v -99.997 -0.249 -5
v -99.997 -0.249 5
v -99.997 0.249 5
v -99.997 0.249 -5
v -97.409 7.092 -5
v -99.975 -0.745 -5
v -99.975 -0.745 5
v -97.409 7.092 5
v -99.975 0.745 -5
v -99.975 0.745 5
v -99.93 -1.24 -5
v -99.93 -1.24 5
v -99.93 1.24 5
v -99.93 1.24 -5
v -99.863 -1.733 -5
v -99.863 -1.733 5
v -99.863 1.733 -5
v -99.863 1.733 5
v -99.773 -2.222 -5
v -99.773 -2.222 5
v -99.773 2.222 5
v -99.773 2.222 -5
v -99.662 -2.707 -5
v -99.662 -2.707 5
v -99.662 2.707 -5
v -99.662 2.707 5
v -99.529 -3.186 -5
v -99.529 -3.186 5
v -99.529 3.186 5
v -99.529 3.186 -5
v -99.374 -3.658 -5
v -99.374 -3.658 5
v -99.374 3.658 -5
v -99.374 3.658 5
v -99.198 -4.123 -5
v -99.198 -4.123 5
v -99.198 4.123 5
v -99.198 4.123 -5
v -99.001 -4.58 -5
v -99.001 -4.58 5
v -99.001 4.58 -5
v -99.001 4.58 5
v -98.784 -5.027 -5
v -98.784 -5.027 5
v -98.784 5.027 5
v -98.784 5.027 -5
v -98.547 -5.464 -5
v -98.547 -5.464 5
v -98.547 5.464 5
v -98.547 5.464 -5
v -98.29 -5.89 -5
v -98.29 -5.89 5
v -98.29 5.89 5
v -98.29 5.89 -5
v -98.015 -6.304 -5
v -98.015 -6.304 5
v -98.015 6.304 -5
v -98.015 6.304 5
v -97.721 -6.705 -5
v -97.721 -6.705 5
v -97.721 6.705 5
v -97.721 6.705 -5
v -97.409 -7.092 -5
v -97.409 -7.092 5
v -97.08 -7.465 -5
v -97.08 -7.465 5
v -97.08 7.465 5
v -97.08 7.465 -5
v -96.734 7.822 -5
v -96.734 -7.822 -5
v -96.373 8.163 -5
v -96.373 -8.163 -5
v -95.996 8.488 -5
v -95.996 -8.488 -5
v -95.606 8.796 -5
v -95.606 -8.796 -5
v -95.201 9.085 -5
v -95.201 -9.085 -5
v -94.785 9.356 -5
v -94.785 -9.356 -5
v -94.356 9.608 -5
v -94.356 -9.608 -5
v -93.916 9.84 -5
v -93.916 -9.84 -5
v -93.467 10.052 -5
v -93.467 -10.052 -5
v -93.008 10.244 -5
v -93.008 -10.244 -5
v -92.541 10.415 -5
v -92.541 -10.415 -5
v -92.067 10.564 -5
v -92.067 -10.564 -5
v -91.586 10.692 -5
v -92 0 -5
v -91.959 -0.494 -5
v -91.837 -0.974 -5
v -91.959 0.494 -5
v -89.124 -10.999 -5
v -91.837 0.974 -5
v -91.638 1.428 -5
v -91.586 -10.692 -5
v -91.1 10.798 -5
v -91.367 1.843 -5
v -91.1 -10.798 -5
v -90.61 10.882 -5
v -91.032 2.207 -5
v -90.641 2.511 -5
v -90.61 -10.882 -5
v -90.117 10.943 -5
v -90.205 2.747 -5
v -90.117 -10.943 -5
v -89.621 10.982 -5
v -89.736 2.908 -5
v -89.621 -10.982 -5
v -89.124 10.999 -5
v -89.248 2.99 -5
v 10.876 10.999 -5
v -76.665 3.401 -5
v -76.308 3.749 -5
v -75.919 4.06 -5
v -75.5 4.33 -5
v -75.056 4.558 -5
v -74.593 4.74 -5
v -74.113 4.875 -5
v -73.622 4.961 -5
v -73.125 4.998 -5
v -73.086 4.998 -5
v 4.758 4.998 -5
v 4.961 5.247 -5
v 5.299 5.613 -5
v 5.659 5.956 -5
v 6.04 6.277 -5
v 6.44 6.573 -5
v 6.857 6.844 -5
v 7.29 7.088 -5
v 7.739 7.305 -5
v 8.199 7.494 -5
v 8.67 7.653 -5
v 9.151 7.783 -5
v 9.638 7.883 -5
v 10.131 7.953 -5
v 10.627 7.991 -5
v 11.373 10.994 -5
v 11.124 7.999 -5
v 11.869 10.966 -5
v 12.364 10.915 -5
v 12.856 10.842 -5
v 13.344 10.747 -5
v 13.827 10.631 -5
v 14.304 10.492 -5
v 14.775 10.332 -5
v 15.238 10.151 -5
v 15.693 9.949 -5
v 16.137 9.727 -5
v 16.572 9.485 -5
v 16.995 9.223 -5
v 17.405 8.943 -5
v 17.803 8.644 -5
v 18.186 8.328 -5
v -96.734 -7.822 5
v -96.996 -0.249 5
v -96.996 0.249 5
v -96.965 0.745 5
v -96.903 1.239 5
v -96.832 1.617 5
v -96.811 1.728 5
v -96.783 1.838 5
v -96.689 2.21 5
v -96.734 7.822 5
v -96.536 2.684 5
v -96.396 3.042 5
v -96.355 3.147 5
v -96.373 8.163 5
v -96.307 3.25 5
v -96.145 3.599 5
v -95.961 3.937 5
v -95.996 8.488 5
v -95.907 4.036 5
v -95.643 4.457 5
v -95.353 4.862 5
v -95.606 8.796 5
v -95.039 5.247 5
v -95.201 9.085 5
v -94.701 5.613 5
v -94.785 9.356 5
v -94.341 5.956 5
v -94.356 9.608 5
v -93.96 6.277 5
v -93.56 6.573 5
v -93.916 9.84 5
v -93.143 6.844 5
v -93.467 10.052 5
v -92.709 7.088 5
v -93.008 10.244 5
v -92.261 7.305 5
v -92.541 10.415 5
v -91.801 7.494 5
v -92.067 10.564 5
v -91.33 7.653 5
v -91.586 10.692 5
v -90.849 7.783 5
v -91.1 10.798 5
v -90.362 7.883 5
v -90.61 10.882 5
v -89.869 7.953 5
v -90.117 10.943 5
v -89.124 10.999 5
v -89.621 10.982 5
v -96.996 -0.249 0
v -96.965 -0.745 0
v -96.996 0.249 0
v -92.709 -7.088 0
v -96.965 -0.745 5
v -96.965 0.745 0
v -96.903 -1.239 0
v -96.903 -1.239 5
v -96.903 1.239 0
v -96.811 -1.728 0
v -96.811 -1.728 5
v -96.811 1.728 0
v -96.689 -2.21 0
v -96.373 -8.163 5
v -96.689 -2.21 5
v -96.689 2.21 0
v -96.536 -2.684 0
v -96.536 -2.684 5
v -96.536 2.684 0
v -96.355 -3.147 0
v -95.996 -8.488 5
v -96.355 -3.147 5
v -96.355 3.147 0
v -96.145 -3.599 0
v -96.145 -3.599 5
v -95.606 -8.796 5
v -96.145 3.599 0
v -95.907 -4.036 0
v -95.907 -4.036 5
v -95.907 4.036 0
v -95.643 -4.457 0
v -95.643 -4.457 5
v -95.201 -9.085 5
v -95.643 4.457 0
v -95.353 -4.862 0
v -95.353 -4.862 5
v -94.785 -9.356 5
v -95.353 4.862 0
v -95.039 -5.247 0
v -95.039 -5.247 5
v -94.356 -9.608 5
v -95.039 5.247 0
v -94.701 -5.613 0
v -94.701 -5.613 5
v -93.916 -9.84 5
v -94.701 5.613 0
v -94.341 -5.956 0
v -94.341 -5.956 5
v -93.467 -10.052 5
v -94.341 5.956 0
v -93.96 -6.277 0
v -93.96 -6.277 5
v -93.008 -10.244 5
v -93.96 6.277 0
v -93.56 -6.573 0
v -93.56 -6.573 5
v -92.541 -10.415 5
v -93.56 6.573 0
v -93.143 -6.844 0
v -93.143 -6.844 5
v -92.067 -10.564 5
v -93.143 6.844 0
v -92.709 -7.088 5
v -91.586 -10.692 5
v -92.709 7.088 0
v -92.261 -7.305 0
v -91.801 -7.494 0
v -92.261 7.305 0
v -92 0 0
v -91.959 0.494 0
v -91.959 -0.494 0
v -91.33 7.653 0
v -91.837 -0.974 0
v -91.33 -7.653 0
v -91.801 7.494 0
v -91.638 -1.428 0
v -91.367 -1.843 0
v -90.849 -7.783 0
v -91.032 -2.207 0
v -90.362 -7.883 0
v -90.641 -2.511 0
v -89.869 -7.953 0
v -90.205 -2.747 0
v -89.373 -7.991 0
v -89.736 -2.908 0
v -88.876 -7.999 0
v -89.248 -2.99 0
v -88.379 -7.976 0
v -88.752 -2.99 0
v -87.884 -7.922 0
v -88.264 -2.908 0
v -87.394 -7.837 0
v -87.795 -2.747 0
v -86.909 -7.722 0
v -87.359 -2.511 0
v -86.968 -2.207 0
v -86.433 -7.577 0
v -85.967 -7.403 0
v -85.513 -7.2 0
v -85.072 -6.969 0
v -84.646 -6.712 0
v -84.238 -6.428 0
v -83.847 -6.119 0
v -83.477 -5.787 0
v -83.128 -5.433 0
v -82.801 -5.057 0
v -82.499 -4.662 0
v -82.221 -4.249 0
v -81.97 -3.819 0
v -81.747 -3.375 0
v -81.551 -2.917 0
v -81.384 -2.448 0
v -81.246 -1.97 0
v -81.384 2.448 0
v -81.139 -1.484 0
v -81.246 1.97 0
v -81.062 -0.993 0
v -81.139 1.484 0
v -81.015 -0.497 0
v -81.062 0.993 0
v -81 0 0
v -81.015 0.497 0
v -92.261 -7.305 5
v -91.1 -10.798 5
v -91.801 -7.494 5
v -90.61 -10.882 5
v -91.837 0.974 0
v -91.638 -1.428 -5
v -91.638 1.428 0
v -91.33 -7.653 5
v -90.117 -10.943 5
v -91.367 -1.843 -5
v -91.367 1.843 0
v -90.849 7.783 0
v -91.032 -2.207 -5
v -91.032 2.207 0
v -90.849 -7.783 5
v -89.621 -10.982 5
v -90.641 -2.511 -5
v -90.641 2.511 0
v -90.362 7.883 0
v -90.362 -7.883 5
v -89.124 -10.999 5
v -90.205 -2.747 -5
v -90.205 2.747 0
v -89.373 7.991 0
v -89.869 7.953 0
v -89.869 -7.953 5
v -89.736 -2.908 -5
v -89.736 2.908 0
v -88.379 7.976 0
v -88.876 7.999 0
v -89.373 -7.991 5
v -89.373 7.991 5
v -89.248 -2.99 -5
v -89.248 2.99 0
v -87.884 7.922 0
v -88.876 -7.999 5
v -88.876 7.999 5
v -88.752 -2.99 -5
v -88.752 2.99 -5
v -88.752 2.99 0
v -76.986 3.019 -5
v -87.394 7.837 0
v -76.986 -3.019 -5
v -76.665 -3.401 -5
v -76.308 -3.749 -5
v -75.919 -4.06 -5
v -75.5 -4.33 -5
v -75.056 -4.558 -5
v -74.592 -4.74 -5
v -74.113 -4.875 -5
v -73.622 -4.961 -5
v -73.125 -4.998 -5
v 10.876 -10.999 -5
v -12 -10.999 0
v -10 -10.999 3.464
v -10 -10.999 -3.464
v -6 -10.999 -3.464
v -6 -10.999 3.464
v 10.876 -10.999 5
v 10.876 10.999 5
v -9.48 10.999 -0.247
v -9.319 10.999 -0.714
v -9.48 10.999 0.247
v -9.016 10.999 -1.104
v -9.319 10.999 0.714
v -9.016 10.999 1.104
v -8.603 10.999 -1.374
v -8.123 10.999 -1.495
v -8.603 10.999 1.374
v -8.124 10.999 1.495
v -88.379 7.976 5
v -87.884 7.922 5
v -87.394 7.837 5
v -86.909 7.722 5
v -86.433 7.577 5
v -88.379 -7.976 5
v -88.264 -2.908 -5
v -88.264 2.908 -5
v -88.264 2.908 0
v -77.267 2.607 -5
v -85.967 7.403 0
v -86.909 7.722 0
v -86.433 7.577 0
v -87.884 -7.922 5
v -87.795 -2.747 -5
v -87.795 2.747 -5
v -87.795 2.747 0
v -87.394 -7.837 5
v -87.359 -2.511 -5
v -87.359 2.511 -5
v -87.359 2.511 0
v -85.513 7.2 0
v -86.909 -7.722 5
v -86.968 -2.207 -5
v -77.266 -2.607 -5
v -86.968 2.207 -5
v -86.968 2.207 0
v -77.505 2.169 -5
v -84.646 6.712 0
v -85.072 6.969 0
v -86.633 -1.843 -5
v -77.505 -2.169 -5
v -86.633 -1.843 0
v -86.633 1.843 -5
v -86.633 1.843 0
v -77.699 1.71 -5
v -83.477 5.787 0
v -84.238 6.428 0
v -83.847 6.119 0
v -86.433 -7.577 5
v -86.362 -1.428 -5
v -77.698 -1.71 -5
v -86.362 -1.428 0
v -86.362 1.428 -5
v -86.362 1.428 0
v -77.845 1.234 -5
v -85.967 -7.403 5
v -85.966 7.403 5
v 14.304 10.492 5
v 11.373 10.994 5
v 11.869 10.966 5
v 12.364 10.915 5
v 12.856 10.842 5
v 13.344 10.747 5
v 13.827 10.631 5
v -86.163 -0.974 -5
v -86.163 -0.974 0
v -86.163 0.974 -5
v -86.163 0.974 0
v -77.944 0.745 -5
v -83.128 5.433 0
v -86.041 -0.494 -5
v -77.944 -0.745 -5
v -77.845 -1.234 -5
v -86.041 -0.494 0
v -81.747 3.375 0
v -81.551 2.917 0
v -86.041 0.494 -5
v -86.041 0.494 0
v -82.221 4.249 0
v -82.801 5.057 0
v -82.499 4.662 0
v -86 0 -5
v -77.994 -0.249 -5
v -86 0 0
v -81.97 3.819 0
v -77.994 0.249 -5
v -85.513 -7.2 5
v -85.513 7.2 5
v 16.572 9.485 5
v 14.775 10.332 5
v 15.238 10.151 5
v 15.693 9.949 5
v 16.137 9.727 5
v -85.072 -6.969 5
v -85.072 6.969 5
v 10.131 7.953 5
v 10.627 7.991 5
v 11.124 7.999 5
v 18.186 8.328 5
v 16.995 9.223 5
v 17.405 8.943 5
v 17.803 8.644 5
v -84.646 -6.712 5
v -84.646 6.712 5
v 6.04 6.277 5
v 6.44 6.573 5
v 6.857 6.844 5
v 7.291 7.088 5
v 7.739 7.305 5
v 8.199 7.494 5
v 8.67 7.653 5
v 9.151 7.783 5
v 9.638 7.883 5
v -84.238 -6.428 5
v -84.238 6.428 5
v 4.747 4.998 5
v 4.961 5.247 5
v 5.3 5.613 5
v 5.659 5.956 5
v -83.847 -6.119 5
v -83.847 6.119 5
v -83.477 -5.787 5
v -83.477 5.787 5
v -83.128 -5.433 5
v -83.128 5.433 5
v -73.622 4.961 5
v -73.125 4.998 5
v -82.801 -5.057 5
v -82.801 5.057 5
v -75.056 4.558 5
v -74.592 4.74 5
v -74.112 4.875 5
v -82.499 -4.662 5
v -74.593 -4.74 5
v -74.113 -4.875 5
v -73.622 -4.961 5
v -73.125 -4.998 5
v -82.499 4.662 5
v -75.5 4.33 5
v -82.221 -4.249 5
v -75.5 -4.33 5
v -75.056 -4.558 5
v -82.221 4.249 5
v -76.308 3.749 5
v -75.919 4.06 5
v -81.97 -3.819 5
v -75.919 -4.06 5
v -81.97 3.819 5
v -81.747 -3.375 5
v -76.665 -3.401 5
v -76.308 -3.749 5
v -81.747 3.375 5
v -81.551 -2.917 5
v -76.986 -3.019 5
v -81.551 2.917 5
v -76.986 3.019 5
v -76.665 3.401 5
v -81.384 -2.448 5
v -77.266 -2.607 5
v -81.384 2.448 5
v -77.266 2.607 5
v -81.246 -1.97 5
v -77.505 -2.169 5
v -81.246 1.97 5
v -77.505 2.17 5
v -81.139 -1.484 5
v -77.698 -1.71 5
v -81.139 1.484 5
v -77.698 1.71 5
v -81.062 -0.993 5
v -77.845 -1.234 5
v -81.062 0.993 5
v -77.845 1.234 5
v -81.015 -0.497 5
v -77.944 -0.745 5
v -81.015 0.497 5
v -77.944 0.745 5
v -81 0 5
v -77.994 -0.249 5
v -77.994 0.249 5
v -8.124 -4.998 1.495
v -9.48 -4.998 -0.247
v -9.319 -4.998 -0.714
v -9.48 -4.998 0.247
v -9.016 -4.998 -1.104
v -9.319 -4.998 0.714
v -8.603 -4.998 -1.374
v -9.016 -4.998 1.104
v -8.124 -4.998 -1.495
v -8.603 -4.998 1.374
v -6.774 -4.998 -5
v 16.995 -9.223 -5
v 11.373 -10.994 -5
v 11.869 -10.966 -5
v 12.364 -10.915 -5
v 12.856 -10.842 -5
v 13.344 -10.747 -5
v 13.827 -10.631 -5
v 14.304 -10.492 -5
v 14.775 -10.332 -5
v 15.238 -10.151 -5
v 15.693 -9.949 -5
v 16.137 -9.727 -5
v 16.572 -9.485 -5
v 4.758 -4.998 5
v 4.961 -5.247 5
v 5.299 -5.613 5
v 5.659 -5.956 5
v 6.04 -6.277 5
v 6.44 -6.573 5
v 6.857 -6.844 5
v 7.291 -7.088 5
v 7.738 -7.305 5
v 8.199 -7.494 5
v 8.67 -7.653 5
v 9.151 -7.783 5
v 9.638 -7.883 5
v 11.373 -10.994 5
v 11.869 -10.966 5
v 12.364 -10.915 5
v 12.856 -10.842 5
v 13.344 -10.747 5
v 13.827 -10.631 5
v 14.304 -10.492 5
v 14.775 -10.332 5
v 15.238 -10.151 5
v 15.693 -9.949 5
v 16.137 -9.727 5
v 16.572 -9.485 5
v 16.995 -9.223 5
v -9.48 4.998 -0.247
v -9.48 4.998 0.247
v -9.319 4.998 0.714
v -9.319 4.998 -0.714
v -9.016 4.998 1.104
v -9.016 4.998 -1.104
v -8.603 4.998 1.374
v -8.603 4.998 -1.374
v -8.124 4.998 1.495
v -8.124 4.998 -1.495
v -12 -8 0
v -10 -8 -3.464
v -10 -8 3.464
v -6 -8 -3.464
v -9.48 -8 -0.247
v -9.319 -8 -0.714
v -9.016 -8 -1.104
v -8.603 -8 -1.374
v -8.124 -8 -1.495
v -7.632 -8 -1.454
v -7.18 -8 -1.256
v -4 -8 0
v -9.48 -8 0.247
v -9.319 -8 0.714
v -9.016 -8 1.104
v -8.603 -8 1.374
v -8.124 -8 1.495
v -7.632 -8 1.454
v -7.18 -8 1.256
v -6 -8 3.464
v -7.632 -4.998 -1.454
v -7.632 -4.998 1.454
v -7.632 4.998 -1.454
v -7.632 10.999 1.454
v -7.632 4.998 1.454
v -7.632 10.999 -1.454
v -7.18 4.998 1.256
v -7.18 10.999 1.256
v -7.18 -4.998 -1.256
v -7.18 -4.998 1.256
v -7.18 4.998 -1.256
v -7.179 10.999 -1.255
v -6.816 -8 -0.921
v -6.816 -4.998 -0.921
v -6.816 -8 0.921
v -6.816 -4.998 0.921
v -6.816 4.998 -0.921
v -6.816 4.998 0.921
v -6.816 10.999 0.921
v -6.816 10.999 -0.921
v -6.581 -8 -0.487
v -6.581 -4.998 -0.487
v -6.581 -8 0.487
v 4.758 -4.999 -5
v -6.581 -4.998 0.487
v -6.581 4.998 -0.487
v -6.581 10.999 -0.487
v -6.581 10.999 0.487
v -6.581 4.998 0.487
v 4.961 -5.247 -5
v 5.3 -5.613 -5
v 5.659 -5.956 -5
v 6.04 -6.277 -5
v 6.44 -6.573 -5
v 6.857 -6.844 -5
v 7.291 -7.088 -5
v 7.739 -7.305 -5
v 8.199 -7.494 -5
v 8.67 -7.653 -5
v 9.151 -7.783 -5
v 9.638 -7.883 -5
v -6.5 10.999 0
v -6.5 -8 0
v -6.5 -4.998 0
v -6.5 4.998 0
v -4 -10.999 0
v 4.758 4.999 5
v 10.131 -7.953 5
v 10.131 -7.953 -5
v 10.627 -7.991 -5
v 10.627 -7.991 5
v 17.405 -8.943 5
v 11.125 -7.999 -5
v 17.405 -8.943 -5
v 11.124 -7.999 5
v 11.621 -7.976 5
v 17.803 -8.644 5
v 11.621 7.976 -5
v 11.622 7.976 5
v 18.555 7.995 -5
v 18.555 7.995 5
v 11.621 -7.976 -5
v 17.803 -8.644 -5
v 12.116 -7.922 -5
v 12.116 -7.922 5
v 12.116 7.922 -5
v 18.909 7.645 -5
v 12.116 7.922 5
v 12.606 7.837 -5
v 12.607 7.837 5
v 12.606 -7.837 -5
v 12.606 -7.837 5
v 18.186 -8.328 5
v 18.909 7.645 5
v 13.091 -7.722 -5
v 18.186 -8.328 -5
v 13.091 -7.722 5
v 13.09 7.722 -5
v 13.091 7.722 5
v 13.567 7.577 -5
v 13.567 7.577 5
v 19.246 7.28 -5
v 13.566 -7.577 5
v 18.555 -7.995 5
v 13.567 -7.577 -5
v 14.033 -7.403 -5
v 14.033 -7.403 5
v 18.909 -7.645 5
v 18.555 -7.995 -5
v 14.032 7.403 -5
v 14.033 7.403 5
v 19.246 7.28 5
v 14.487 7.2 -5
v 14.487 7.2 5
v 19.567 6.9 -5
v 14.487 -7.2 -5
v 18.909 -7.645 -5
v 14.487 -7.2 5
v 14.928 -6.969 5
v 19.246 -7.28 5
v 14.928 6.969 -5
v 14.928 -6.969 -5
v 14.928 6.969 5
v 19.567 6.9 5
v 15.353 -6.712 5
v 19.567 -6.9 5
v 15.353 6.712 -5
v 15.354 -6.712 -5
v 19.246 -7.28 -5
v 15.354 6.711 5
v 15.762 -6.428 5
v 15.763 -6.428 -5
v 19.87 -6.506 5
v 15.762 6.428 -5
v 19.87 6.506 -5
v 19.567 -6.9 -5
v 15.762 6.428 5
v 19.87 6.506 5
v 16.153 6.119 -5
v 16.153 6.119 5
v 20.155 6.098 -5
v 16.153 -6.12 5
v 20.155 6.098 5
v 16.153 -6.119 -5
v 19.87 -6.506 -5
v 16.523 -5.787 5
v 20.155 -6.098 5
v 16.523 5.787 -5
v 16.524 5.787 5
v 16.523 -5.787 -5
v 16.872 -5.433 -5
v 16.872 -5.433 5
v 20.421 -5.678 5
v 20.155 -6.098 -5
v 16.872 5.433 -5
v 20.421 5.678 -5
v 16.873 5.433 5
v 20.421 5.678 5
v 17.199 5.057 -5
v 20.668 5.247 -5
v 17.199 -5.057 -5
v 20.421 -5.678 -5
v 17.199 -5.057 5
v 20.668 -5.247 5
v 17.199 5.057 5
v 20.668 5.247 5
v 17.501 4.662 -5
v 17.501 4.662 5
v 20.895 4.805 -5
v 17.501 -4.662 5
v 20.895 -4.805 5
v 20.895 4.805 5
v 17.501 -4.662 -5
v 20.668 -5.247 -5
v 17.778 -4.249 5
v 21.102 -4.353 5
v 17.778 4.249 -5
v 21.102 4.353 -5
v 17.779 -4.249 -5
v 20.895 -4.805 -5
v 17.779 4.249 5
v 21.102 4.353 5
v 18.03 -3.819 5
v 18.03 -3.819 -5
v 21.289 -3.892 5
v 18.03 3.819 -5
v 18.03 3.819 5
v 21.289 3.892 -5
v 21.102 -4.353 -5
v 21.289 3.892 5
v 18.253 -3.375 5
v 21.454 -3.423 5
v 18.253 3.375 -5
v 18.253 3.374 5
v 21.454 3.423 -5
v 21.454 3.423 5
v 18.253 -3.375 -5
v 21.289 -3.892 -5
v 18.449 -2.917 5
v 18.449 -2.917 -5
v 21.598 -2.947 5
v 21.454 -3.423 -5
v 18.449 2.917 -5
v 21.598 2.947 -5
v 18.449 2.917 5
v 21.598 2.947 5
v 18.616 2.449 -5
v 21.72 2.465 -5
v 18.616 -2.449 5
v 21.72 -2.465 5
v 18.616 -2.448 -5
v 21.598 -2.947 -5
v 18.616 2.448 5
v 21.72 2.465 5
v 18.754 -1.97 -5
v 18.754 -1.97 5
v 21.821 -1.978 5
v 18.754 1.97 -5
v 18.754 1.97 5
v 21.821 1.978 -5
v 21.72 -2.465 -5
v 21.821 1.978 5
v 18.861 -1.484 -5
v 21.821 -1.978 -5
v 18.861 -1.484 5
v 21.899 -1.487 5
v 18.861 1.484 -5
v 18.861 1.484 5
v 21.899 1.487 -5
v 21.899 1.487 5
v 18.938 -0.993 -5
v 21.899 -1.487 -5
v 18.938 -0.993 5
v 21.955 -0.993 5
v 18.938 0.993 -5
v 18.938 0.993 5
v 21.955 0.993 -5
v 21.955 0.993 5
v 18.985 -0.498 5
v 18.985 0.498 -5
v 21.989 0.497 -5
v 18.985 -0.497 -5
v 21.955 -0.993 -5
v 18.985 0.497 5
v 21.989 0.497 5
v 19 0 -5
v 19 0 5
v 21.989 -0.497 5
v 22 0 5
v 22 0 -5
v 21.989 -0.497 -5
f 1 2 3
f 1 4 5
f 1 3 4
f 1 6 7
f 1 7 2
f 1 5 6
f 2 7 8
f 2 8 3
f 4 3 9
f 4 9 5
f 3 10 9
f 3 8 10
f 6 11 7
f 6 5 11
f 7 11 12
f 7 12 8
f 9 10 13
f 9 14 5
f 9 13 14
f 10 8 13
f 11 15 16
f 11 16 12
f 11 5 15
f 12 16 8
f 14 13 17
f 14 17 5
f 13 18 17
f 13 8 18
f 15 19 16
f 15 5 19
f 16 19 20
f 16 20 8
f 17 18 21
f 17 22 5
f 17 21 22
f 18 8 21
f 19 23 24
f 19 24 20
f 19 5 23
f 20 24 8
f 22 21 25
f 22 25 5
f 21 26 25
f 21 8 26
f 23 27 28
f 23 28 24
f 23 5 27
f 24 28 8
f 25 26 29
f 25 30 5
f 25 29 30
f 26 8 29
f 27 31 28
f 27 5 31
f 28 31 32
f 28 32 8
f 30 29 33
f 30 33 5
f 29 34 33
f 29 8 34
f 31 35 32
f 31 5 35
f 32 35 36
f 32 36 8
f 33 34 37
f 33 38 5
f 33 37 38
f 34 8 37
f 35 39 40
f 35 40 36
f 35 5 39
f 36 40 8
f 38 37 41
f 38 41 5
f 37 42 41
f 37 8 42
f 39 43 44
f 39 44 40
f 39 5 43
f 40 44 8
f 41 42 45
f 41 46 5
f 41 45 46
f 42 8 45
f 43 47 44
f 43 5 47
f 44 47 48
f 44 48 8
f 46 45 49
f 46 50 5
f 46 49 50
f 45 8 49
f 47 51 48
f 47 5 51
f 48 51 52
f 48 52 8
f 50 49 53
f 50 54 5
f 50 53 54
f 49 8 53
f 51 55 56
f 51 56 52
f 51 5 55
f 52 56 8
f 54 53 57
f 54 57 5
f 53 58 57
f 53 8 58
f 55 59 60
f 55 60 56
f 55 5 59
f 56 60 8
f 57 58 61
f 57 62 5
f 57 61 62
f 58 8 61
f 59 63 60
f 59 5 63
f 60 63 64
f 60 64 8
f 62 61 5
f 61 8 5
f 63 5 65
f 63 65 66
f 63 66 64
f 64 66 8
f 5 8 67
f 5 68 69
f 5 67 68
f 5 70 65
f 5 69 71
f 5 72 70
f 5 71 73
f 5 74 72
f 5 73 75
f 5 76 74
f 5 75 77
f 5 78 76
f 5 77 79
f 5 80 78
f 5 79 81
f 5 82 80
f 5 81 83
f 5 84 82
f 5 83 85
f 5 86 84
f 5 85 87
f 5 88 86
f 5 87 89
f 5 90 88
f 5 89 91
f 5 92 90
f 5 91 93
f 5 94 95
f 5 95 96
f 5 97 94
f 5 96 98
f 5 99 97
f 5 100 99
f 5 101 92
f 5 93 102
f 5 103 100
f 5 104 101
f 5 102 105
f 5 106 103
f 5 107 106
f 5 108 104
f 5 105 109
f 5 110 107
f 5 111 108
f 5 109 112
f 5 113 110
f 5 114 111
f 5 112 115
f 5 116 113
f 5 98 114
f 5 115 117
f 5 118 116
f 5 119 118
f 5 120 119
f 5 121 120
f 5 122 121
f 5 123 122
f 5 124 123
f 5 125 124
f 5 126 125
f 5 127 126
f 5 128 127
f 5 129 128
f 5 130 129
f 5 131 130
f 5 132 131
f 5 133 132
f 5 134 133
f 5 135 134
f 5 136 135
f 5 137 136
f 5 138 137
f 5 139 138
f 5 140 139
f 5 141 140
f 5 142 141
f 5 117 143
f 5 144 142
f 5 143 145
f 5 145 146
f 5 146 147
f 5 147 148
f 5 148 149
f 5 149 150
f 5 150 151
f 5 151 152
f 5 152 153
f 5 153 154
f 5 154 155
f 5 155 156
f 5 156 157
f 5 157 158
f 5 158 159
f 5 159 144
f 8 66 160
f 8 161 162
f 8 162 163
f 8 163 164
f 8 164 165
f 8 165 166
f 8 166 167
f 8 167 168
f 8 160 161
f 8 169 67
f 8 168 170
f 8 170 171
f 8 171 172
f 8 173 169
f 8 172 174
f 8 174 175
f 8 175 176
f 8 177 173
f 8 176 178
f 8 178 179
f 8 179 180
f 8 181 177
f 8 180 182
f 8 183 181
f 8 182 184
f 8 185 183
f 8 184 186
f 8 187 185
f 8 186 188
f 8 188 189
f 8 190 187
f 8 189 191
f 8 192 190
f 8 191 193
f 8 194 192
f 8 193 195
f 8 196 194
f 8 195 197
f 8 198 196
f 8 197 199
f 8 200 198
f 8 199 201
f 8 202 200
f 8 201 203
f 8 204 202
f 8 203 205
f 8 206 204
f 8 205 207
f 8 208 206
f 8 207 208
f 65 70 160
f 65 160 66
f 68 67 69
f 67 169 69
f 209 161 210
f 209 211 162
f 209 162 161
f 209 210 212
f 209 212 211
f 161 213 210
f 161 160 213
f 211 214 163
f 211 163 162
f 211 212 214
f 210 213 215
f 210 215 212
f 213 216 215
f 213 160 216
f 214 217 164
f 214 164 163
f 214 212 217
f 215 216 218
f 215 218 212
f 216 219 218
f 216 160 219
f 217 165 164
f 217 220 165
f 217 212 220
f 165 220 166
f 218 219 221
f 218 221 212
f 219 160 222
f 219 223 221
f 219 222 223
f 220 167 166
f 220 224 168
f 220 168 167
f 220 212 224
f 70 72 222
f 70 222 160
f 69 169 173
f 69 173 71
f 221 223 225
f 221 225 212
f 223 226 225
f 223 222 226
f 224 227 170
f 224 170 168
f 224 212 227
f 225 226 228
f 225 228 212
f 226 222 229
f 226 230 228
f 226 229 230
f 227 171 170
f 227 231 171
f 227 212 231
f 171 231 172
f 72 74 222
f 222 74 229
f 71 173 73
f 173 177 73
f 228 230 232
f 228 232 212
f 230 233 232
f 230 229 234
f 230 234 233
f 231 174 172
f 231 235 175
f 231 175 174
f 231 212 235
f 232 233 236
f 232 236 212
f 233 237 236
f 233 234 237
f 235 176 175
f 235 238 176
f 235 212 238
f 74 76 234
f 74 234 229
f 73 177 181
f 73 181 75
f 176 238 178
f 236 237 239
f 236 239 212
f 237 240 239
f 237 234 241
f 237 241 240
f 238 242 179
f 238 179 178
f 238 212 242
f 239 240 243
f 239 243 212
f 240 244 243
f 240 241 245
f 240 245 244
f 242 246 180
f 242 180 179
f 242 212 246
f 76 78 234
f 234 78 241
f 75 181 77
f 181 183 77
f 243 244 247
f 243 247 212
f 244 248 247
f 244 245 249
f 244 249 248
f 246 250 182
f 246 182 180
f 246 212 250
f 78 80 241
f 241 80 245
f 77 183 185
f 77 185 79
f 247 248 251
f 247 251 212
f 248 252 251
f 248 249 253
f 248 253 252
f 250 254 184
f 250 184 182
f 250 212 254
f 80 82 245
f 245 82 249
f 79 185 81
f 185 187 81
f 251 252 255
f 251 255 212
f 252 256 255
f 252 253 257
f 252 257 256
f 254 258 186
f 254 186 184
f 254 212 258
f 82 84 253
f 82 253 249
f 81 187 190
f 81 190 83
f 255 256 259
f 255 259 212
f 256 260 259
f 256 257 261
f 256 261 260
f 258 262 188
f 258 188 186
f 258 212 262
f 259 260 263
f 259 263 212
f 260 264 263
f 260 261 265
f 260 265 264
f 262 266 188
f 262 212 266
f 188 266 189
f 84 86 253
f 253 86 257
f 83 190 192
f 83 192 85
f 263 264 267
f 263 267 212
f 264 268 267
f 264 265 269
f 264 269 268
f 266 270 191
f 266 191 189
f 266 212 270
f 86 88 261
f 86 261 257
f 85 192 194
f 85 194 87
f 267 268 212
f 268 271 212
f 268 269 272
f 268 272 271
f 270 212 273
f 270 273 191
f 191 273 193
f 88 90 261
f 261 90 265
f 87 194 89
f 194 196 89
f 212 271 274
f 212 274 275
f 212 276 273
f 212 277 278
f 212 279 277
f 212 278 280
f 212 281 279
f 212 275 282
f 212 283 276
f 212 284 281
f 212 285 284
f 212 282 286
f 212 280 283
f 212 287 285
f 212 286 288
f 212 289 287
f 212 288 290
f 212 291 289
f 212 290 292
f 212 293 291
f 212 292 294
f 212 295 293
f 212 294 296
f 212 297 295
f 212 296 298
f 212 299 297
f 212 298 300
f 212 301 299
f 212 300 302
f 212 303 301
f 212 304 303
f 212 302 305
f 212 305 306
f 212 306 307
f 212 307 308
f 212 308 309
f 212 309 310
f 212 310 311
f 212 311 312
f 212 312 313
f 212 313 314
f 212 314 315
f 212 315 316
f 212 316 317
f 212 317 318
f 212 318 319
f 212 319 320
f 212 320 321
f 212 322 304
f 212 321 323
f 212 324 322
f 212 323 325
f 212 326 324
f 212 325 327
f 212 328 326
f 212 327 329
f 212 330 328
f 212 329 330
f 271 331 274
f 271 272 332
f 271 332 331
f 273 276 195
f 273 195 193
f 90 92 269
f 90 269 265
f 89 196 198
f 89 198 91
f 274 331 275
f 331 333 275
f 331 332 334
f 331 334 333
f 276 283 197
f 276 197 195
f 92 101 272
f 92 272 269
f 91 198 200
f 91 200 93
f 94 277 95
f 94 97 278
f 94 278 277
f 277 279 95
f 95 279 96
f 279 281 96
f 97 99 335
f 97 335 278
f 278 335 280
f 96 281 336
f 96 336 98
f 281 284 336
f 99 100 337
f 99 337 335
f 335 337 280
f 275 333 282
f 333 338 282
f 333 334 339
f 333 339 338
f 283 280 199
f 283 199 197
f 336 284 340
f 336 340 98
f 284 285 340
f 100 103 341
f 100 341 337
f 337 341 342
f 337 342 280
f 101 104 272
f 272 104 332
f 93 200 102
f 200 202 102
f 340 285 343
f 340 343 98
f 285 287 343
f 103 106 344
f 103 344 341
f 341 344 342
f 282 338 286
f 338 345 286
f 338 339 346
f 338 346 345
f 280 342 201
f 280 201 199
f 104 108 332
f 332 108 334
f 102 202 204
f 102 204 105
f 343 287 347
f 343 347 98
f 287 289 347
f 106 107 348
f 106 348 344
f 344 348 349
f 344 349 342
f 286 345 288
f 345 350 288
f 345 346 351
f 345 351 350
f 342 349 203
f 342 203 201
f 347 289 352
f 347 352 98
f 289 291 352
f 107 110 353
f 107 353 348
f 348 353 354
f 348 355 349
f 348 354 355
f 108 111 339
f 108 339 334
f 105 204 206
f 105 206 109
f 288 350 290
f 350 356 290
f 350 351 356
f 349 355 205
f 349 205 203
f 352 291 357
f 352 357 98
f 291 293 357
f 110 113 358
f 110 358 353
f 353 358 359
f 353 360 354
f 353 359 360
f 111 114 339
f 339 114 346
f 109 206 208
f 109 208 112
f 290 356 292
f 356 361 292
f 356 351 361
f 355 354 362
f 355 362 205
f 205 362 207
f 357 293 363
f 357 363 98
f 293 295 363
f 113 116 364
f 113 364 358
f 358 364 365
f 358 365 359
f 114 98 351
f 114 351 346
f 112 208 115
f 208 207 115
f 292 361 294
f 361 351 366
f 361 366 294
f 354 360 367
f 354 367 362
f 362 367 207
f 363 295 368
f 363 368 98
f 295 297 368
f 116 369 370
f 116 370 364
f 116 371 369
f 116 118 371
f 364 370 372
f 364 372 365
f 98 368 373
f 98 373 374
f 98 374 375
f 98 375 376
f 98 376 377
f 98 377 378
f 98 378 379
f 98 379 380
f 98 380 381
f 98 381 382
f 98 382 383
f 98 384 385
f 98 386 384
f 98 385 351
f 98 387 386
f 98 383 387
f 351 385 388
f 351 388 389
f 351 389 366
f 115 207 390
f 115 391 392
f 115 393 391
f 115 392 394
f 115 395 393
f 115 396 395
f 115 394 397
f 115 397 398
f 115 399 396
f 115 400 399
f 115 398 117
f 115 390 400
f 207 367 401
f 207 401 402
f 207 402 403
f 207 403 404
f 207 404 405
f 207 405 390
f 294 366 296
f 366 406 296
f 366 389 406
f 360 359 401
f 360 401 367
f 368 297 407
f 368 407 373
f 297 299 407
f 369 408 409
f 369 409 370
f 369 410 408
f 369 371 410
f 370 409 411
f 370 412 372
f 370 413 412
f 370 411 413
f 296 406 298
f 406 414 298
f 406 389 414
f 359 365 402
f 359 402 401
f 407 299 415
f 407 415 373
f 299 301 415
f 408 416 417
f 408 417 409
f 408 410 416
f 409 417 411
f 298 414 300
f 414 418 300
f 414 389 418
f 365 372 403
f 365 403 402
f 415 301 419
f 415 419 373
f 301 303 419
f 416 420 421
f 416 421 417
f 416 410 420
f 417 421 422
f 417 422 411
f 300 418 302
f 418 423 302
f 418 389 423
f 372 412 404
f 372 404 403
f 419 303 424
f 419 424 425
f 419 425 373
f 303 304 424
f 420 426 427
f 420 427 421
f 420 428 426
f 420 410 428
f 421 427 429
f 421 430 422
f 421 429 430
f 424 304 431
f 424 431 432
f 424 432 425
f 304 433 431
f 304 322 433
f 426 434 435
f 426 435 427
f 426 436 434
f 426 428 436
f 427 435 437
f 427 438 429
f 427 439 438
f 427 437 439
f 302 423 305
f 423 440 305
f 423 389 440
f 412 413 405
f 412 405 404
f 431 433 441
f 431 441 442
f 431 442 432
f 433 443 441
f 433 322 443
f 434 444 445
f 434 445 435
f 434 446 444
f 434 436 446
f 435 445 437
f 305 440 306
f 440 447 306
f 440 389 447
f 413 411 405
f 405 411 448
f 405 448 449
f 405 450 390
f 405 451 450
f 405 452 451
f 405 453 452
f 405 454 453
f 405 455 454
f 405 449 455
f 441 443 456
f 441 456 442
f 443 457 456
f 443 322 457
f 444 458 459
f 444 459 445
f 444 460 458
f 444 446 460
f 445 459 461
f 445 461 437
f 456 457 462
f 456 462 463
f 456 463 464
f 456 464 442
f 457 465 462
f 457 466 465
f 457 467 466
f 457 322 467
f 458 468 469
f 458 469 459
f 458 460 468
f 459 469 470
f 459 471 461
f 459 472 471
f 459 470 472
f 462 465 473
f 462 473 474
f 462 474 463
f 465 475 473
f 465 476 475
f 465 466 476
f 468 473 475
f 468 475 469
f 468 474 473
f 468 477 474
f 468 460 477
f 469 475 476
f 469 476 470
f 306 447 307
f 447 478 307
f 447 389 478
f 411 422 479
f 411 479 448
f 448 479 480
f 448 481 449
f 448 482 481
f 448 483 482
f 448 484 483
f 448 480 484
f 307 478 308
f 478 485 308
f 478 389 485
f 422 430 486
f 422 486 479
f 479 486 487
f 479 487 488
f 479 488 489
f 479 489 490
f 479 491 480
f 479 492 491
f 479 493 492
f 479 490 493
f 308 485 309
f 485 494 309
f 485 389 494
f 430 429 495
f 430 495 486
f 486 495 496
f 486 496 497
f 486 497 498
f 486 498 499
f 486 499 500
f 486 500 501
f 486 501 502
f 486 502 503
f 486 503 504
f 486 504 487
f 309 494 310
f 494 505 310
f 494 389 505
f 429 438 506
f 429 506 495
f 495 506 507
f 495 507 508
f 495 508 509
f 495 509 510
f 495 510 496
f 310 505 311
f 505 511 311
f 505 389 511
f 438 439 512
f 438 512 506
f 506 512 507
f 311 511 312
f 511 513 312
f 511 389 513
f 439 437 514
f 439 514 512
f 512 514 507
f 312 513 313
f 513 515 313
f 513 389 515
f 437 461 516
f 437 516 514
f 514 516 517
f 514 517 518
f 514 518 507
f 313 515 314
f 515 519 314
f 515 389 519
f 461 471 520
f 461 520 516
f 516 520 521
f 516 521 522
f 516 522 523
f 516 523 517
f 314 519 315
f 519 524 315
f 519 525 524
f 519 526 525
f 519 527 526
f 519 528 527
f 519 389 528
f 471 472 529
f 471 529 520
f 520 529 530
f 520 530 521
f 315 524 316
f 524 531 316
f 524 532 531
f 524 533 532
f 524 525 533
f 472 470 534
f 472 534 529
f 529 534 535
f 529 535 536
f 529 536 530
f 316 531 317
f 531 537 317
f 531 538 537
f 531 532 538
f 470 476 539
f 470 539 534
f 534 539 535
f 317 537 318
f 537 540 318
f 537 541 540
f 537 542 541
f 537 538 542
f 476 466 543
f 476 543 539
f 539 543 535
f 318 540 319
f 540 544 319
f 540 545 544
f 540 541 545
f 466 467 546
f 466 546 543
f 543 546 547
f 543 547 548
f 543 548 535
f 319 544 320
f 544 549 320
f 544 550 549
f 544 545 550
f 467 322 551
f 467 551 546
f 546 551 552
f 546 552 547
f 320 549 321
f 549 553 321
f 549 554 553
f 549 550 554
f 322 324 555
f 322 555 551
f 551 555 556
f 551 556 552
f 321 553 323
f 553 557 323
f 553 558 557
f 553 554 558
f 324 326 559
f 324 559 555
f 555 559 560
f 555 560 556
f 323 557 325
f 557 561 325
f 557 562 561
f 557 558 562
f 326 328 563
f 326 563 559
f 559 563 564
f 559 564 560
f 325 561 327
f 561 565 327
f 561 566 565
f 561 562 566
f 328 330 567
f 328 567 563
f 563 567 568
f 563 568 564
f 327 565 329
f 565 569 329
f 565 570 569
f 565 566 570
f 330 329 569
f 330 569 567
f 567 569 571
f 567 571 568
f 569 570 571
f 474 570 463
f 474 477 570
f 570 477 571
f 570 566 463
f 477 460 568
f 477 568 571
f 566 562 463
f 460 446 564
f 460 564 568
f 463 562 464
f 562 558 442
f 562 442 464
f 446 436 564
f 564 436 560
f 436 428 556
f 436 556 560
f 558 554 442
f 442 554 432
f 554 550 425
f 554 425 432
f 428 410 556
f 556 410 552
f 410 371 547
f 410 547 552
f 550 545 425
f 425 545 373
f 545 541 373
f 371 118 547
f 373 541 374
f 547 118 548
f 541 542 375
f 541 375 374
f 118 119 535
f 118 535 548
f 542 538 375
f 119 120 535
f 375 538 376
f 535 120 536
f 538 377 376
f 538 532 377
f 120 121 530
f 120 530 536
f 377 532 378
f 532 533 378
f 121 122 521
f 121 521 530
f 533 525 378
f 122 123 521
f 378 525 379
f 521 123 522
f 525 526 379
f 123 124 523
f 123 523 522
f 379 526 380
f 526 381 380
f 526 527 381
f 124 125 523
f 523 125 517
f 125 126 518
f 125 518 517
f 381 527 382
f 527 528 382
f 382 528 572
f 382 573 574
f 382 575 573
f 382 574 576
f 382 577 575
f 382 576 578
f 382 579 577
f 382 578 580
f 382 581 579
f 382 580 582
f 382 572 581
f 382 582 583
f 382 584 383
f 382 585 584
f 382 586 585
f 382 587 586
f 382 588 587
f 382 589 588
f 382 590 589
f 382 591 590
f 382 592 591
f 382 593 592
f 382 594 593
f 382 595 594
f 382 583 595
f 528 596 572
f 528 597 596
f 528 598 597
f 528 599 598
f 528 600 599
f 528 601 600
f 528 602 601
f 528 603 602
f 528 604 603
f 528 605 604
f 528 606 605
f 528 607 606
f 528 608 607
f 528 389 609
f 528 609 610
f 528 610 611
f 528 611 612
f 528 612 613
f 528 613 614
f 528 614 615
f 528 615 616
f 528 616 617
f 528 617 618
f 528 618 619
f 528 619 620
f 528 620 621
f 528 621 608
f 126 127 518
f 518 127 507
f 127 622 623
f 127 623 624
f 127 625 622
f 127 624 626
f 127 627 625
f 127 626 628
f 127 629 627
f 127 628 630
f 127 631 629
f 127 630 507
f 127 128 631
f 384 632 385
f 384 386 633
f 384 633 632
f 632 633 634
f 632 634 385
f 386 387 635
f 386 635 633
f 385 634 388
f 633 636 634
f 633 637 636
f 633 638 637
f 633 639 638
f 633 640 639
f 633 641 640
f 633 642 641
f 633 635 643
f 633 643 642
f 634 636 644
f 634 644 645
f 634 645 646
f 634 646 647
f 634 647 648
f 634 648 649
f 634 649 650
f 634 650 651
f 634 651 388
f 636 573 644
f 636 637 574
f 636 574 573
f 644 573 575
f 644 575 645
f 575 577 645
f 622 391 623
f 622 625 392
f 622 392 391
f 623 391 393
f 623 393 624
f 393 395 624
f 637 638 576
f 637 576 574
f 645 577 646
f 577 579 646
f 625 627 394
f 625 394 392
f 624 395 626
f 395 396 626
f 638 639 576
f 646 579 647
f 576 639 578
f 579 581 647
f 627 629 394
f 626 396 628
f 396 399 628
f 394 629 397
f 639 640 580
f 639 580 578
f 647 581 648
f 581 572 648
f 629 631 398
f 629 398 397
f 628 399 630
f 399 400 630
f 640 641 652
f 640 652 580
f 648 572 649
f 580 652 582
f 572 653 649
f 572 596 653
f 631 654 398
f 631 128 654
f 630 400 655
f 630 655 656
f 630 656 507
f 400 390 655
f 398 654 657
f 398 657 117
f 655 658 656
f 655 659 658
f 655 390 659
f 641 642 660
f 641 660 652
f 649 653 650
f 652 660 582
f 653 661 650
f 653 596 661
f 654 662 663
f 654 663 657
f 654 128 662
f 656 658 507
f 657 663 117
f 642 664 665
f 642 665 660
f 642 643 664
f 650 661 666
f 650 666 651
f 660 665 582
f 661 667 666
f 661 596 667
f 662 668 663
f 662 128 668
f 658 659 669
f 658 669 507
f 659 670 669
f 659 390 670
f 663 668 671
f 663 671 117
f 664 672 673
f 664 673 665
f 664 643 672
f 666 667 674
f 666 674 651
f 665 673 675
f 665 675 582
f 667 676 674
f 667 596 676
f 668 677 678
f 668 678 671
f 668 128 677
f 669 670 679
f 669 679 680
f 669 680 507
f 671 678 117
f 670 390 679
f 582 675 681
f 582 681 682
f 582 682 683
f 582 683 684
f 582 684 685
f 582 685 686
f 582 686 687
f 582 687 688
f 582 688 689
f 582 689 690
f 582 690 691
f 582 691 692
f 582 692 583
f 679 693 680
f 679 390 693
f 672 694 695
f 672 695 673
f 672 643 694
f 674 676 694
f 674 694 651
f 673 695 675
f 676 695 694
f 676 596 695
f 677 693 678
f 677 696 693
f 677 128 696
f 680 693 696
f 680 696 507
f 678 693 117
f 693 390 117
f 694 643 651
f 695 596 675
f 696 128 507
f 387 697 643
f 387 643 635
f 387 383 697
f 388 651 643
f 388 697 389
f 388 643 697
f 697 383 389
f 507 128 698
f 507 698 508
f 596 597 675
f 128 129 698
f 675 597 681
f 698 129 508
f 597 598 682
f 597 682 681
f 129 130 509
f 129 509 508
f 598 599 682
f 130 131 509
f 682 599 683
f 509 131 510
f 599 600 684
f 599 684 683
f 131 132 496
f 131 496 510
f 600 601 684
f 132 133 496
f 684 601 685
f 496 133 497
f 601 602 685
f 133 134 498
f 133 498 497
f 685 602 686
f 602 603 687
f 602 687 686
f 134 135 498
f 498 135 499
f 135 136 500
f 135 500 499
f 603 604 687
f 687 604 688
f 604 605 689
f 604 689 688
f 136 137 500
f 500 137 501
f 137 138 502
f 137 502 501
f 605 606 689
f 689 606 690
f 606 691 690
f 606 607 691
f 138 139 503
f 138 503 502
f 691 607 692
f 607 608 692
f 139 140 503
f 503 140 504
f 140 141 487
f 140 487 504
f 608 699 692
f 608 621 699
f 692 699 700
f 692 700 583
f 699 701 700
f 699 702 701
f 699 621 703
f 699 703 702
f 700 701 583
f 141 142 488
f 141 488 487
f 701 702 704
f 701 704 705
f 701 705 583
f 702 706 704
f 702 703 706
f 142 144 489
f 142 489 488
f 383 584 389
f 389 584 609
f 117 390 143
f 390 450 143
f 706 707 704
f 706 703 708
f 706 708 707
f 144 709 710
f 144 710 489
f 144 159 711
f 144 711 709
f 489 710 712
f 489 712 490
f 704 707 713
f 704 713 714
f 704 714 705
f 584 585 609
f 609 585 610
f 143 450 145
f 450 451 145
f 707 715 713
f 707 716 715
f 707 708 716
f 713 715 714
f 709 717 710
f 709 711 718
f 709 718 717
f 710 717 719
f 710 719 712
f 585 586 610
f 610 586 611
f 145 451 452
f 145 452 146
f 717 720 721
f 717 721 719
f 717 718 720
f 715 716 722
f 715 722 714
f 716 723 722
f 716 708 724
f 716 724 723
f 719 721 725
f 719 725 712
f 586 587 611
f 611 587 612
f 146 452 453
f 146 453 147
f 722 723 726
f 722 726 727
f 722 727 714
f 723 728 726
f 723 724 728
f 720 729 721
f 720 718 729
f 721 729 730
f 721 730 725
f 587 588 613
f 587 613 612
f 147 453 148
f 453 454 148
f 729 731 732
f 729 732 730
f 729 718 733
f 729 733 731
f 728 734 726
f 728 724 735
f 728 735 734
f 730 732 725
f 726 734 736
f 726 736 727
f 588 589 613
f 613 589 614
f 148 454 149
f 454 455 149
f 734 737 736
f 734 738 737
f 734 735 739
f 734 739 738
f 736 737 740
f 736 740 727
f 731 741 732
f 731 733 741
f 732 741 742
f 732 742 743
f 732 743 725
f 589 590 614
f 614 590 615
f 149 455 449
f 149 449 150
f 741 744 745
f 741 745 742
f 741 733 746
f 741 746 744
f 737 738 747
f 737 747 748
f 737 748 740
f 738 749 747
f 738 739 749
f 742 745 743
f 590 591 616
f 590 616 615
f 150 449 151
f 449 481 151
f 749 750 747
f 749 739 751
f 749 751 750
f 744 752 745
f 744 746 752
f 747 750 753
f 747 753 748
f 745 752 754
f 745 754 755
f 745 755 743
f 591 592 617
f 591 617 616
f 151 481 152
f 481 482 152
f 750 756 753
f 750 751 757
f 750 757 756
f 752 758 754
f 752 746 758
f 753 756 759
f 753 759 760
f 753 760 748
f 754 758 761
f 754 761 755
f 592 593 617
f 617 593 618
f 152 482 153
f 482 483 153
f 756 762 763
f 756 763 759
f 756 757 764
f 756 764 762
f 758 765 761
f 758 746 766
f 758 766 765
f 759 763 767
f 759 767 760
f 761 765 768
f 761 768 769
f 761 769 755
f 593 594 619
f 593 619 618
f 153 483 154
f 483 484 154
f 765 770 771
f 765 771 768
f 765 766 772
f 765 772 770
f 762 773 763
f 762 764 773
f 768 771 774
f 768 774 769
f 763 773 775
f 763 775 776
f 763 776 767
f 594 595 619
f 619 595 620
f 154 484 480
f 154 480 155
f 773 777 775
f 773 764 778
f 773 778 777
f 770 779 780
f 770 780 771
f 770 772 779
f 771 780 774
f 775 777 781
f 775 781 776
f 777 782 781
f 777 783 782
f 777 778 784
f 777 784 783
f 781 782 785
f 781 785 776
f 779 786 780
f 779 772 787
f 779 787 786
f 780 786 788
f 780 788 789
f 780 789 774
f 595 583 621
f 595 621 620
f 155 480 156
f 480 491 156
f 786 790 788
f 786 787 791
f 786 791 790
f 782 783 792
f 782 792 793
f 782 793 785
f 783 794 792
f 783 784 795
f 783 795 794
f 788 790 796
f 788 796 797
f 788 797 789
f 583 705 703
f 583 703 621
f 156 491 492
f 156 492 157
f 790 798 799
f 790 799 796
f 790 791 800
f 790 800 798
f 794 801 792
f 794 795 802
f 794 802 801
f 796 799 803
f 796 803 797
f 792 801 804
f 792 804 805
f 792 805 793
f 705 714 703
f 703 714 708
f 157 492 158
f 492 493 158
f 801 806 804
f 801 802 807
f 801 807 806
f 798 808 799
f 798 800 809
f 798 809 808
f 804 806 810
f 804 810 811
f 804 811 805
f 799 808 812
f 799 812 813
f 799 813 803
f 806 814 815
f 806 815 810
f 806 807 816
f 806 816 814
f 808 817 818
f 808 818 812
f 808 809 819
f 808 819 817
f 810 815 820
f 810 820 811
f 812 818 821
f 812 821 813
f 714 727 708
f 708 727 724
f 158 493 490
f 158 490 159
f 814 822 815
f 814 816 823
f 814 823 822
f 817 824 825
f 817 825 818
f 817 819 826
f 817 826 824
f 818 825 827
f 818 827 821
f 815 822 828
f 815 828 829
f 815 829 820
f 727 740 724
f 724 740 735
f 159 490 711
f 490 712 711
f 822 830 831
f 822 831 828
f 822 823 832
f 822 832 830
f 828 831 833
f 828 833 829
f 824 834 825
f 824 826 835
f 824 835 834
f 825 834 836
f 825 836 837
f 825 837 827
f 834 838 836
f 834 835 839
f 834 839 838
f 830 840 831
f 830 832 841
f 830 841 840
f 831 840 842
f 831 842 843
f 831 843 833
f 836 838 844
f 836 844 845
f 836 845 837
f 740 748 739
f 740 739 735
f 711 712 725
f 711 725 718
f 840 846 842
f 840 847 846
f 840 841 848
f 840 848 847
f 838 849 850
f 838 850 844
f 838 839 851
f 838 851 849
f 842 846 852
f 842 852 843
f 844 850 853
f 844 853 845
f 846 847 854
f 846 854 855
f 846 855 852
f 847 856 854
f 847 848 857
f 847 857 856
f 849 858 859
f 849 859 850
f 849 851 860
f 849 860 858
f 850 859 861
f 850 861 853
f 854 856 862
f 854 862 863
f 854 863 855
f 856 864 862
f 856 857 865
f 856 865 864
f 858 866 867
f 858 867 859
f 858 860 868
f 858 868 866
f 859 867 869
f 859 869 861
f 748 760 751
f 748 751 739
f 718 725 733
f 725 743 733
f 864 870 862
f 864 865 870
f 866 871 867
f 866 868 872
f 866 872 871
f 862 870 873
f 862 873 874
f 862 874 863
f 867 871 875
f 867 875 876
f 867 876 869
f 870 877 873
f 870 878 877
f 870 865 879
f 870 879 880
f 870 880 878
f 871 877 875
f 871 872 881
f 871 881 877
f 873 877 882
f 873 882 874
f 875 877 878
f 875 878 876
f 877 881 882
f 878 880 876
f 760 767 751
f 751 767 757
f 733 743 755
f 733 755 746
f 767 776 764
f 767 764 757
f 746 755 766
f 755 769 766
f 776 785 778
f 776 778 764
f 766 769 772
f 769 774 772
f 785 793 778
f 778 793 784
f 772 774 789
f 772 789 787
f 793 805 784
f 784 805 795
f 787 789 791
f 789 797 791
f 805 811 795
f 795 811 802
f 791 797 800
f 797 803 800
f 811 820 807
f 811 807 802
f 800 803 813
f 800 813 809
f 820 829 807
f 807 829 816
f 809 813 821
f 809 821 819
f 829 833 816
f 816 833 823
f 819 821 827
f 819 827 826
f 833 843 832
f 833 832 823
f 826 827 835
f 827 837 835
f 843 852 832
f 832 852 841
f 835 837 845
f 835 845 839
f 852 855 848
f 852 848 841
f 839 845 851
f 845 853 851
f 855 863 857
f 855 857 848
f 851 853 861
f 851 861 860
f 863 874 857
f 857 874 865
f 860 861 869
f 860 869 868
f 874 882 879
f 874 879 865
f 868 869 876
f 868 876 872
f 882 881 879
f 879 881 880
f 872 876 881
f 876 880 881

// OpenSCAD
$fa=1/1;
$fs=0.5/1;
d_tube=16;
d_mount=16;
wall=3;
mount_depth=wall;
d_bolt=3;
d_nut=8;
mount_hole=6;
bolt_offset=20;
mount_offset=100;
mount_width=10;
bissl=0.01;
difference() {
  hull() {
    translate([d_tube/2+wall,0,0])cylinder(h=mount_width, d=d_tube+2*wall,center=true);
    translate([-mount_offset+wall+d_tube/2,0,0]) rotate([0,0,0]) cylinder(h=mount_width, d=d_tube+2*wall,center=true);
  }
  translate([d_tube/2+wall,0,0])cylinder(h=mount_width+bissl, d=d_tube,center=true);
  translate([-d_tube/2,0,0]) rotate([90,0,0]) cylinder(h=d_tube+2*wall+bissl, d=d_bolt,center=true);
  translate([-d_tube/2,-d_tube/2,0]) rotate([90,0,0]) cylinder(h=d_tube+2*wall+bissl, d=d_nut,$fn=6);
  translate([-mount_offset+wall+d_tube/2,0,0]) rotate([0,0,0]) cylinder(h=d_tube+2*wall+bissl, d=mount_hole,center=true);
  translate([-mount_offset+wall+d_tube/2,0,0]) rotate([0,0,0]) cylinder(h=d_tube+2*wall+bissl, d=d_mount);
  hull() {
    translate([-mount_offset+wall+d_tube+d_mount/2,0,0]) cylinder(h=mount_width+bissl,d=d_tube-2*wall,center=true);
    translate([d_tube/2+wall,0,0]) cylinder(h=mount_width+bissl,d=d_tube-2*wall,center=true);
  }
}
